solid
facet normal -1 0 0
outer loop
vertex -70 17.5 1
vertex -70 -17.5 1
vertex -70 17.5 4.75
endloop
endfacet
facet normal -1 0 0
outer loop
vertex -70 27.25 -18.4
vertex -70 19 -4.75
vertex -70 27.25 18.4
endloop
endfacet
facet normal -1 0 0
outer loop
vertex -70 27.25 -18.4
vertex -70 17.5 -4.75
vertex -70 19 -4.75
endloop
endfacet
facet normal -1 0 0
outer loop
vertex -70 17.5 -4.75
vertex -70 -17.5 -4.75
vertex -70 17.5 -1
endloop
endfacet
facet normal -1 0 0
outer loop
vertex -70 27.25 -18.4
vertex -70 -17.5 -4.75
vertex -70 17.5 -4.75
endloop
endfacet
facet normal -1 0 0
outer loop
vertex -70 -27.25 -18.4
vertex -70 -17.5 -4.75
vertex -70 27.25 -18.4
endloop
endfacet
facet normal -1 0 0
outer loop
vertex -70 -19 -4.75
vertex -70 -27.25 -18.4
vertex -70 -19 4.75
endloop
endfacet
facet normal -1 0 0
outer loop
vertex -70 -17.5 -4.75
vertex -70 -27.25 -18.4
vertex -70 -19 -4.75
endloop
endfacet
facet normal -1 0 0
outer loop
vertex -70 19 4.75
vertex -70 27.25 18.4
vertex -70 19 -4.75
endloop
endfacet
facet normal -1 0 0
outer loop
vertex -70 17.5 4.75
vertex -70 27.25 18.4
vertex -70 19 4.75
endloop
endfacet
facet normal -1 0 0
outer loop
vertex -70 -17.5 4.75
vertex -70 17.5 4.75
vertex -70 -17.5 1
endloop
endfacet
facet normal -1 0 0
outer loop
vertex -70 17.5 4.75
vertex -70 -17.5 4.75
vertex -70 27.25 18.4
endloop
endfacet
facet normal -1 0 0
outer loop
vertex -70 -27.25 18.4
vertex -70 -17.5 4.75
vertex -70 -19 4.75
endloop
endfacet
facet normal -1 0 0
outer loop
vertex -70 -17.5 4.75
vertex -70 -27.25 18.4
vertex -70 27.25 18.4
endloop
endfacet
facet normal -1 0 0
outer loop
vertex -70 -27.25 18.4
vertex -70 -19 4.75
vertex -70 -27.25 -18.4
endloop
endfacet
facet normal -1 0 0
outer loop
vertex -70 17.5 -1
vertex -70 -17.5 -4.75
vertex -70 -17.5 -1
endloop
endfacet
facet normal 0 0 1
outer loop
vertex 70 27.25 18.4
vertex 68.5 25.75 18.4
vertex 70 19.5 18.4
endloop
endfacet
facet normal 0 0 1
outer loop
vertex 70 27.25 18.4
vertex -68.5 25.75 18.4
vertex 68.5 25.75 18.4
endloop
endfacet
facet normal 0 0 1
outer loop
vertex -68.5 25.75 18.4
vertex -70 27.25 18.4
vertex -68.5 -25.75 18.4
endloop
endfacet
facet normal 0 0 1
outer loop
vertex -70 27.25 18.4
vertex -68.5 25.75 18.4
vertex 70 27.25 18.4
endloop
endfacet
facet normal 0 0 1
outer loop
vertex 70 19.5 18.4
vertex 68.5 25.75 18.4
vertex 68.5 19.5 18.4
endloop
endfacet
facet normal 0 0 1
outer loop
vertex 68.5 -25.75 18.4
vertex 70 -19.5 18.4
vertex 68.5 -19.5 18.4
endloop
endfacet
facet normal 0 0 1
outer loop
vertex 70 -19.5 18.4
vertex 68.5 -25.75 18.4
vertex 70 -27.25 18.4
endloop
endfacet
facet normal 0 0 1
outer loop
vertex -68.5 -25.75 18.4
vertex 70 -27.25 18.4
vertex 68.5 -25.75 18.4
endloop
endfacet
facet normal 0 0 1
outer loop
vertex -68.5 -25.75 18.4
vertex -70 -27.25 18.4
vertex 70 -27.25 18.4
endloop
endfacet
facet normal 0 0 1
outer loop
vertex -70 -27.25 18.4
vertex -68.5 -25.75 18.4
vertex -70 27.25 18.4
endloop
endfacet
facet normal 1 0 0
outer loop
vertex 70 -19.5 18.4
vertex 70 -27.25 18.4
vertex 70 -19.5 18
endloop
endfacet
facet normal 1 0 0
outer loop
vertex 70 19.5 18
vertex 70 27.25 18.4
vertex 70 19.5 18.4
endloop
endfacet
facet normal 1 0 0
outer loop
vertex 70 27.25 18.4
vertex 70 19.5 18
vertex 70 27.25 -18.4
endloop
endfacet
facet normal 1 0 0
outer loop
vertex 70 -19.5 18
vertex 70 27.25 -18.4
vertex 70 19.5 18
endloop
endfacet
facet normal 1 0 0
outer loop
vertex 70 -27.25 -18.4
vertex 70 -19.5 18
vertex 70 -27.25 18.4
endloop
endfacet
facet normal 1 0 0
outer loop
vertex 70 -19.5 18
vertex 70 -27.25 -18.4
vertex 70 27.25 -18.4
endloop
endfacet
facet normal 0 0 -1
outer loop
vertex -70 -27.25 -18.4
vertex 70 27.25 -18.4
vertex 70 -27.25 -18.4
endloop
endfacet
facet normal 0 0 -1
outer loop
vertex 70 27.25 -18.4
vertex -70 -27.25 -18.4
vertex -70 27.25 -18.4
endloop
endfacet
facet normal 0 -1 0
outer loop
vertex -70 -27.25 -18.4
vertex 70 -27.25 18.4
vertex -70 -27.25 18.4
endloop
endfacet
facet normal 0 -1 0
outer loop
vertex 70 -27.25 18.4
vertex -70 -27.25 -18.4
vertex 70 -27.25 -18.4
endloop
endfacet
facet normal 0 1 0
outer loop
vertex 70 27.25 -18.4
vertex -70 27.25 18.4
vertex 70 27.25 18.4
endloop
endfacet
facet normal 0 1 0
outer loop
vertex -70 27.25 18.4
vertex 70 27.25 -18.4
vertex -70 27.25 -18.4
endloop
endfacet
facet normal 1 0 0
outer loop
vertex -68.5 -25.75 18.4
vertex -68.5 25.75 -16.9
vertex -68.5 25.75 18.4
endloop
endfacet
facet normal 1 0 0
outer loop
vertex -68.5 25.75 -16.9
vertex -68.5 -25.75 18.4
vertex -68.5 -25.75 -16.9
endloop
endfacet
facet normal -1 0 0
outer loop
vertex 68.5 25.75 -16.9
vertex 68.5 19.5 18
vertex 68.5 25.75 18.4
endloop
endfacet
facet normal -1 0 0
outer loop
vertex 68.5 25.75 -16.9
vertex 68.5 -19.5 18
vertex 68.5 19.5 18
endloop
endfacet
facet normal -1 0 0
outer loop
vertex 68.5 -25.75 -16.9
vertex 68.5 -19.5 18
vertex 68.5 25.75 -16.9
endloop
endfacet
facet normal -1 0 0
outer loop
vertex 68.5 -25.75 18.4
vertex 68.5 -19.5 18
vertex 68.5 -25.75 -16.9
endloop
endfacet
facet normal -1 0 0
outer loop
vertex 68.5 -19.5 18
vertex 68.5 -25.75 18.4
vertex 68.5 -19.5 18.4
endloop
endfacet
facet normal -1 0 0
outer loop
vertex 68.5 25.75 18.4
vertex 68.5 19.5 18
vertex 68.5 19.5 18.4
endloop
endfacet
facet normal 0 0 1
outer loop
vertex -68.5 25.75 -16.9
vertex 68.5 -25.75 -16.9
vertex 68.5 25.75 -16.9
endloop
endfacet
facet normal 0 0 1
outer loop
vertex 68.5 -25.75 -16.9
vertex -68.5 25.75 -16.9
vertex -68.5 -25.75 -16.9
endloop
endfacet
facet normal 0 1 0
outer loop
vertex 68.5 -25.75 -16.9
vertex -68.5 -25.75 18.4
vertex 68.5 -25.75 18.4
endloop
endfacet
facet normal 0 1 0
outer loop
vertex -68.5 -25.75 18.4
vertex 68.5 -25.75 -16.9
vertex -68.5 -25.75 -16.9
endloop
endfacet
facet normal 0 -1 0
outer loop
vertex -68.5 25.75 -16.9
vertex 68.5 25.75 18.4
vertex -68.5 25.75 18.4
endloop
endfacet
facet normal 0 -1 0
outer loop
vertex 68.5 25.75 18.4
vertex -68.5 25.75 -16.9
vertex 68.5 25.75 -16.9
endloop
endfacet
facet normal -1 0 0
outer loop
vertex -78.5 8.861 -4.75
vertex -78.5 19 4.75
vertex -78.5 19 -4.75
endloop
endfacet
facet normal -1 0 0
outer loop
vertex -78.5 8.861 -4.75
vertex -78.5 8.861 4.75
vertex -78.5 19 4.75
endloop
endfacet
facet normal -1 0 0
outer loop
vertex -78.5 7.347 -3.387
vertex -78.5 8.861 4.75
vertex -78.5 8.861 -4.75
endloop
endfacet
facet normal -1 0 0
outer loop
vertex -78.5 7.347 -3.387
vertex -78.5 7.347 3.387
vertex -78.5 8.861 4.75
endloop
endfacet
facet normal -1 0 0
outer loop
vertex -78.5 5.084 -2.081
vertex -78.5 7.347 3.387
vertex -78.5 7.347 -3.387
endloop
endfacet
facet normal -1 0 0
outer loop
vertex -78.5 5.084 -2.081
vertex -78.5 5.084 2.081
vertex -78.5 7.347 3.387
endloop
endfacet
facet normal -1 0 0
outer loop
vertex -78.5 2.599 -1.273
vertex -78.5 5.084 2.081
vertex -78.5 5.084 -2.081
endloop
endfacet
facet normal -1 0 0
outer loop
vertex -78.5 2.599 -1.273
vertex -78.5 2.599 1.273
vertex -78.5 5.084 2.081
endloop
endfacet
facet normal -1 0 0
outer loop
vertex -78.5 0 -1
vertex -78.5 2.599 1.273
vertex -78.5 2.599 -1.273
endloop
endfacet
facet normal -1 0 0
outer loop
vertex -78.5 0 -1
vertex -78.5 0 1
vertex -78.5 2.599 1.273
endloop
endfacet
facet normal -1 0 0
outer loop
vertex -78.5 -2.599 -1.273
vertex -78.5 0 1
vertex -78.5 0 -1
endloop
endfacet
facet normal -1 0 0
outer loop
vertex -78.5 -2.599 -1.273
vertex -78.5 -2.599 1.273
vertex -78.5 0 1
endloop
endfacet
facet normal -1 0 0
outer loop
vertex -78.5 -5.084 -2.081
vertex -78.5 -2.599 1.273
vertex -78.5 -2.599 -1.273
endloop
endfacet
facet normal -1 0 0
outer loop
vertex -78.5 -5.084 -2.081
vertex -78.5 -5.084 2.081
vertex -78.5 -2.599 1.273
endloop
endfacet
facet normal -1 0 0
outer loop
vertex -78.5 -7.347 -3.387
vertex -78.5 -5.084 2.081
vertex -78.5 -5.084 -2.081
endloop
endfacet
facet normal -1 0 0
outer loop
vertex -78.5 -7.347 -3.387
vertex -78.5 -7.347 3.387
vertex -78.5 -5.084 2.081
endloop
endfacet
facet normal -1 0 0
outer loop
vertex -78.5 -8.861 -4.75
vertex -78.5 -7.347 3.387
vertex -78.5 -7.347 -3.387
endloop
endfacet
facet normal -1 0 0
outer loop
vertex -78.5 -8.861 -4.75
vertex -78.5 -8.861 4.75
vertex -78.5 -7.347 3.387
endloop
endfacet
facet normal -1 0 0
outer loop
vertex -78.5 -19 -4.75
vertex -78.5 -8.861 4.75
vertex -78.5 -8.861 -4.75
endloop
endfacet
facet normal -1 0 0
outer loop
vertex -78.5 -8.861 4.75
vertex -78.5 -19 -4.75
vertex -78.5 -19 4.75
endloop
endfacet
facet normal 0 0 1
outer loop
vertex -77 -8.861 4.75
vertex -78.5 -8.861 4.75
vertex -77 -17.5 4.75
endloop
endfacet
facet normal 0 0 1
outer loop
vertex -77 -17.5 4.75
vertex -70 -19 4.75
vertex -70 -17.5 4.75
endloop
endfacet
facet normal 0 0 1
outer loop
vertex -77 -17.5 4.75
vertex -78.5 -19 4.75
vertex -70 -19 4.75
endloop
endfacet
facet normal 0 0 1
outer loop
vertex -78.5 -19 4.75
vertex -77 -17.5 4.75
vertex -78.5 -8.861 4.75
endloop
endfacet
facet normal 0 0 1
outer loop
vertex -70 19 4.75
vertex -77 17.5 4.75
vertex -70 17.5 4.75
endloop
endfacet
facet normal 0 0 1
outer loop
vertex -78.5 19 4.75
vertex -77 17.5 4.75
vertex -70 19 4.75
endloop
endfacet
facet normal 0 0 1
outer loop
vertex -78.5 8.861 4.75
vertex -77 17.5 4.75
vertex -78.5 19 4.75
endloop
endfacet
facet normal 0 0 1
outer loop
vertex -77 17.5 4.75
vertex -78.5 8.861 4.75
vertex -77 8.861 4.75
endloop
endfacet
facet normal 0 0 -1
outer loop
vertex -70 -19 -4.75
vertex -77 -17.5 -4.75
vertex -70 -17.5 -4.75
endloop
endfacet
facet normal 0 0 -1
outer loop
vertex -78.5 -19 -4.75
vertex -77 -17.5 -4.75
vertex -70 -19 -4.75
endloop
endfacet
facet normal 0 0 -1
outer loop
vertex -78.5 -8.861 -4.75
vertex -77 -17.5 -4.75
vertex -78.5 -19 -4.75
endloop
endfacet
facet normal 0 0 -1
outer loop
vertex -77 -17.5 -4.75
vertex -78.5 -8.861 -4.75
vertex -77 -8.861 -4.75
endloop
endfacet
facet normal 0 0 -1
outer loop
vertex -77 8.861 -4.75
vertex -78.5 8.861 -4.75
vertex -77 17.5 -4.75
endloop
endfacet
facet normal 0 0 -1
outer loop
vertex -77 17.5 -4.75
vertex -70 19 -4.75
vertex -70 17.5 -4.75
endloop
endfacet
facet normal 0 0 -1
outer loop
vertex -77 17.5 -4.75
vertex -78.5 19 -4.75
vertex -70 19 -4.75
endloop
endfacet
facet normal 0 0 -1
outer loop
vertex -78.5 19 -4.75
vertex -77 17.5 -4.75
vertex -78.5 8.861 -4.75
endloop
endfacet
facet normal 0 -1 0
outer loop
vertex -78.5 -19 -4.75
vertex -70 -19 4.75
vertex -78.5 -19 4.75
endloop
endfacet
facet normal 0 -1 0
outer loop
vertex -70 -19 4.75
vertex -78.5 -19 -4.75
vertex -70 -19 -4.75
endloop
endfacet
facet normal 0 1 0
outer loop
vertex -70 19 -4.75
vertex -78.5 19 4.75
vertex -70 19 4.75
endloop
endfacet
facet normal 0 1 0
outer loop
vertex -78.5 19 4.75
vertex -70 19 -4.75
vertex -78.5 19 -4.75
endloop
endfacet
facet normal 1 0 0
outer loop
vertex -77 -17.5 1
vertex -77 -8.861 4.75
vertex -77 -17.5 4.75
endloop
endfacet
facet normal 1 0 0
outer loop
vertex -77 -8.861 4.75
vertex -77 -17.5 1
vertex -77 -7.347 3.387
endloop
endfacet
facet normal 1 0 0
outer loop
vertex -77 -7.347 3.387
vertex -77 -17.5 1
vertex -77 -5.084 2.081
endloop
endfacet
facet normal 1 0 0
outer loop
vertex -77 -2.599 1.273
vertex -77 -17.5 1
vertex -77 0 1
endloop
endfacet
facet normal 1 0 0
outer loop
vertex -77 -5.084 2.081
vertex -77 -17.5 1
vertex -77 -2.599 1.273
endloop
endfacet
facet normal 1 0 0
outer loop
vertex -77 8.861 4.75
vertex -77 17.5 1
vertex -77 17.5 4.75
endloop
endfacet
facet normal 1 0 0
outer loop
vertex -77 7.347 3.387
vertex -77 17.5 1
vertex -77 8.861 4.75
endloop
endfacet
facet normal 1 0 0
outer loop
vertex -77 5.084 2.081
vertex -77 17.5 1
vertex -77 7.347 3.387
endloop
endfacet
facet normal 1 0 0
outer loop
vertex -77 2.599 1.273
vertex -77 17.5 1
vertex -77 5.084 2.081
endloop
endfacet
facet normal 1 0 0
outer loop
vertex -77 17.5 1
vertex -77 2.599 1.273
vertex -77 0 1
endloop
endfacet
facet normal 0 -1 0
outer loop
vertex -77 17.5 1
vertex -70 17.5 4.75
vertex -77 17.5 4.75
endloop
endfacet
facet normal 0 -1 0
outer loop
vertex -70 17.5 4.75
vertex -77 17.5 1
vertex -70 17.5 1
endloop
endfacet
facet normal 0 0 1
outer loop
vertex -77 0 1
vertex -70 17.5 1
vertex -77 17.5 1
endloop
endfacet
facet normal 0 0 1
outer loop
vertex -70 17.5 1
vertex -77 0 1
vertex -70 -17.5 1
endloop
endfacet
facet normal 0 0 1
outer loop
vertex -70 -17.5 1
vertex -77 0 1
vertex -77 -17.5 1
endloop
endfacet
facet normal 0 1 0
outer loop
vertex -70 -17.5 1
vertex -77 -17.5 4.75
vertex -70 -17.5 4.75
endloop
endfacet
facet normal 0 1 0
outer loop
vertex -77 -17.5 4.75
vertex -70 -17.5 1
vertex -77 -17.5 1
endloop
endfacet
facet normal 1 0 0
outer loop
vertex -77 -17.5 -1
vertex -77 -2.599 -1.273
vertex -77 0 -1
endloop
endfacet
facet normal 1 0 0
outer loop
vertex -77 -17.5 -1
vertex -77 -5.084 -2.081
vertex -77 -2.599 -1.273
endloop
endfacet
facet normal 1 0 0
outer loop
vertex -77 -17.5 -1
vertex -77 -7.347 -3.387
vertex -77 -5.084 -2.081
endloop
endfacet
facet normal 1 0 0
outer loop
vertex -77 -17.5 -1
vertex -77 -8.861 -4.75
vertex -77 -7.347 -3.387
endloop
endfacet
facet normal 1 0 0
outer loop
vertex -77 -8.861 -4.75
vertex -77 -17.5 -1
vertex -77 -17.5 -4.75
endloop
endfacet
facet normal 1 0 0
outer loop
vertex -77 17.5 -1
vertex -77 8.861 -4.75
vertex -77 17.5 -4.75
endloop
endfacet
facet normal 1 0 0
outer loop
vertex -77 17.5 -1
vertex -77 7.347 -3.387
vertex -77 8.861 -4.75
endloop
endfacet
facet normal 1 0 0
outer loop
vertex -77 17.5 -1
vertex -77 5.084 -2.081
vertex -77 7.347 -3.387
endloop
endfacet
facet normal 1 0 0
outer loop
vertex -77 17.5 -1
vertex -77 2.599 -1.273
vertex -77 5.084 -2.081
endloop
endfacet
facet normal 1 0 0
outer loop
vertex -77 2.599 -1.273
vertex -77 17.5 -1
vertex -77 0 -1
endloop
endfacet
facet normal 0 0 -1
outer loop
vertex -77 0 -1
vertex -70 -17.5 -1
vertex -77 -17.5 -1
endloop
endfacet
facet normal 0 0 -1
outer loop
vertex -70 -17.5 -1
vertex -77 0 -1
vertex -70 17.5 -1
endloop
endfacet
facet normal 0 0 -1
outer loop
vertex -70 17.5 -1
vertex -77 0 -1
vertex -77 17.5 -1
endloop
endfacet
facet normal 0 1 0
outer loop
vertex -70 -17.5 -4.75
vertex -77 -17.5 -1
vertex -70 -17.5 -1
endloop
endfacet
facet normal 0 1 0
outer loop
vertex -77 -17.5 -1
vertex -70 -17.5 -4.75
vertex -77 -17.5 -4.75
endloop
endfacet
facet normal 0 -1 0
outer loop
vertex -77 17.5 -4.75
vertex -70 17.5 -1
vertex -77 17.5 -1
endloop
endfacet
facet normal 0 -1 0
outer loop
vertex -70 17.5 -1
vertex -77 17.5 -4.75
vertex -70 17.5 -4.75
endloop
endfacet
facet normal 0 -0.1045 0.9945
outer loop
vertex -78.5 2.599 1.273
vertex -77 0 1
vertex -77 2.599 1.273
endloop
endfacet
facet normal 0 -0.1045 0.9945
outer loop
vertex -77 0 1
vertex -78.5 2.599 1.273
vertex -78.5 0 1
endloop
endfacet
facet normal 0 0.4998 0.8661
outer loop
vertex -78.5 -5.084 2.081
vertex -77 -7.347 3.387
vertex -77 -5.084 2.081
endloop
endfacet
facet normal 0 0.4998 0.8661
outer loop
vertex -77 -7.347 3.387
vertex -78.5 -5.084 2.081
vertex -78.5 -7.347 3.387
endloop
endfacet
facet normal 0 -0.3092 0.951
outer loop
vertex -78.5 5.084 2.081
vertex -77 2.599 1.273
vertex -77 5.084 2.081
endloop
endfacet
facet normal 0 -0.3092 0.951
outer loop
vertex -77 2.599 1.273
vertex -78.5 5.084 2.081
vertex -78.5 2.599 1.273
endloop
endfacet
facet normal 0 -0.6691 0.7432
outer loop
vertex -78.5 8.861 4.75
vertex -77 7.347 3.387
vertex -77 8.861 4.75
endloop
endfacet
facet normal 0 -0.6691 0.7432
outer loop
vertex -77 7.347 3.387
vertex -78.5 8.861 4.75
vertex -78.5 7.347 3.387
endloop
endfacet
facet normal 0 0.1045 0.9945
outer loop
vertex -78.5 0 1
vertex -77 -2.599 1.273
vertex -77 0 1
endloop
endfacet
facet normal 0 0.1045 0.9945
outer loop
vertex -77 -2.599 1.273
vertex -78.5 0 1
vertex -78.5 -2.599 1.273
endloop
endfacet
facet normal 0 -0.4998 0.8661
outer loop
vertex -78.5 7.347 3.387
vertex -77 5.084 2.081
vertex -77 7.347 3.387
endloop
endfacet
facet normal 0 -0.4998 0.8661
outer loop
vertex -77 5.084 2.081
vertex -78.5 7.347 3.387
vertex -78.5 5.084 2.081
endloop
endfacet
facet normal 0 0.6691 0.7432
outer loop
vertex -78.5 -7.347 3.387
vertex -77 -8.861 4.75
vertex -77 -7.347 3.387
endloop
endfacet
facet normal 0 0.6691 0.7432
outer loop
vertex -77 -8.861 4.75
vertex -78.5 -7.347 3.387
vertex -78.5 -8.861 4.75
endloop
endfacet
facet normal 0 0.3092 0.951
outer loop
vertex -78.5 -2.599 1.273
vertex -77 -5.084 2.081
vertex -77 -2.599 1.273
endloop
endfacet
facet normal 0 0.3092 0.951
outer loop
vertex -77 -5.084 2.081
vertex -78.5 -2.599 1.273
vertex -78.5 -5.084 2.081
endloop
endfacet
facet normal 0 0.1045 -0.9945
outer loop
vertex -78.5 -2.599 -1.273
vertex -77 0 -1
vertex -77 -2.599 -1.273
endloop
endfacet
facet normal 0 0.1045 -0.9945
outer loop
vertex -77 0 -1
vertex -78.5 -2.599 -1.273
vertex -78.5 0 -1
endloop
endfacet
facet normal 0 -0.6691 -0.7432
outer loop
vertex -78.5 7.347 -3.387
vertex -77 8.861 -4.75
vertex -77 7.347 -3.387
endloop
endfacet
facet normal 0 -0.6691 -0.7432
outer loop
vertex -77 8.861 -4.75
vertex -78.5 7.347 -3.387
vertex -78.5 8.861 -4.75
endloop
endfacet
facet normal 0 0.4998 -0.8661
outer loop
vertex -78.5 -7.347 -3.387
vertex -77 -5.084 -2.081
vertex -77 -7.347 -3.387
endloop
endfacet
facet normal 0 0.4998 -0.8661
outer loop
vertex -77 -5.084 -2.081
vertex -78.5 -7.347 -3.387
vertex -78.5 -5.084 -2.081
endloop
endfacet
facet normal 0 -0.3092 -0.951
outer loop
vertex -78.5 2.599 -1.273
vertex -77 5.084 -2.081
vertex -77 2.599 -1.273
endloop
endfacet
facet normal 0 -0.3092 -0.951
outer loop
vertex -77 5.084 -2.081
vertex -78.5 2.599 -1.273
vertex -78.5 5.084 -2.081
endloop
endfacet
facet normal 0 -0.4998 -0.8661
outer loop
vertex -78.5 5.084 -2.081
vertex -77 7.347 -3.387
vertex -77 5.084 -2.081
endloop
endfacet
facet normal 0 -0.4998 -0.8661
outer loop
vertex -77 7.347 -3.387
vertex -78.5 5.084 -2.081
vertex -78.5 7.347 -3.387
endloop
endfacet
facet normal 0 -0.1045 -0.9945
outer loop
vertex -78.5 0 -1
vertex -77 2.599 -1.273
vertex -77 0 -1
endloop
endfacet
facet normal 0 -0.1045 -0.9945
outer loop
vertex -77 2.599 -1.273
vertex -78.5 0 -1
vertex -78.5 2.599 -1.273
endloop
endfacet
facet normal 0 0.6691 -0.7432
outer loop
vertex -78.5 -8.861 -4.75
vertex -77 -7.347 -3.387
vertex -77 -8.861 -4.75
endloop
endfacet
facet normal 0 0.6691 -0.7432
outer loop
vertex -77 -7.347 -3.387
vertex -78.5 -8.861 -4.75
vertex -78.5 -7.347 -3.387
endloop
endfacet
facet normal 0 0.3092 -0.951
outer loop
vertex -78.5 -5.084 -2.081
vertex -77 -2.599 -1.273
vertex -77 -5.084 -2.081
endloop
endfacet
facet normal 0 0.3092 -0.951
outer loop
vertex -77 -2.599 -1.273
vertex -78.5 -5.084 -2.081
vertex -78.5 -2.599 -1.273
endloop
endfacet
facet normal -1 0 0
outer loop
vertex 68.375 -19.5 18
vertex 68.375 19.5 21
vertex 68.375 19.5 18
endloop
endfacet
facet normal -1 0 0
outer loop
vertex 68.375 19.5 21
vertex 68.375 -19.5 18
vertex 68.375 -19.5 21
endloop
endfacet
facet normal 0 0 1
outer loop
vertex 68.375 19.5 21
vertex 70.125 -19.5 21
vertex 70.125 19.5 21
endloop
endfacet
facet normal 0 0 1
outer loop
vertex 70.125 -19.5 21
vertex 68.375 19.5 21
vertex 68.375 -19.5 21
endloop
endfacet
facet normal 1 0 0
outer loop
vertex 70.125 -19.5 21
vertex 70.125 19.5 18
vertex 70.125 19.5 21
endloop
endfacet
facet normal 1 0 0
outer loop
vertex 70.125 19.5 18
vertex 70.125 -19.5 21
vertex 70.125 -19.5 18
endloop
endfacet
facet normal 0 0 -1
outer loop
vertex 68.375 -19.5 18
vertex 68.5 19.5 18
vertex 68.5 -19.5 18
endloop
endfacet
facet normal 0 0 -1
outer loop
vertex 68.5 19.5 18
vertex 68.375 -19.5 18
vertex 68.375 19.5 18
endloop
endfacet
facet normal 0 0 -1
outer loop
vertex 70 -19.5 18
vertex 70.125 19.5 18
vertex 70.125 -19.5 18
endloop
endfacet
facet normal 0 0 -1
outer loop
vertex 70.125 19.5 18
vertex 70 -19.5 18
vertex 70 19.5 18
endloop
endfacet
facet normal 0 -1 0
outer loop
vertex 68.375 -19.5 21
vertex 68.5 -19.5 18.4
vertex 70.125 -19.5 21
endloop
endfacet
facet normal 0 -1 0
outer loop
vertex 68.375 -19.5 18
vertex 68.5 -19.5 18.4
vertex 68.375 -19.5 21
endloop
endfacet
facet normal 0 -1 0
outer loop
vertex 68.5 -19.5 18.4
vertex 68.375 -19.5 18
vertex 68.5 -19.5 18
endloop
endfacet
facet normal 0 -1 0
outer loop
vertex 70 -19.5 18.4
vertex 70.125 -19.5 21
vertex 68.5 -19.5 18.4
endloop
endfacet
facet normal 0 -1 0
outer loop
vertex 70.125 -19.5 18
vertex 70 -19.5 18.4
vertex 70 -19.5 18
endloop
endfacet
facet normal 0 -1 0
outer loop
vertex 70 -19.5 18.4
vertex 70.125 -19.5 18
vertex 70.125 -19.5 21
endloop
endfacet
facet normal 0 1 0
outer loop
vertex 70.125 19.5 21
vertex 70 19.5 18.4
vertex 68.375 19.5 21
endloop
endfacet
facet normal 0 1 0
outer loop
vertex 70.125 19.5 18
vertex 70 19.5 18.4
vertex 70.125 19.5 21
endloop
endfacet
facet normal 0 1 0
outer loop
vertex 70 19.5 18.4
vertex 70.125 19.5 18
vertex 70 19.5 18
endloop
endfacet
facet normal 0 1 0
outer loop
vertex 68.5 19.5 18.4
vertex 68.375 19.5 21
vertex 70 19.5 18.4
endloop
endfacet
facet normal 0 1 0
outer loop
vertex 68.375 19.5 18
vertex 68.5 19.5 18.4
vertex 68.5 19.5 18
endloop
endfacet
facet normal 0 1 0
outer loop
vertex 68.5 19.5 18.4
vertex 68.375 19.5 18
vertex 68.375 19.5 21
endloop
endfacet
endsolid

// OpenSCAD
// Schubbox

module Box (){
    difference(){
        cube([140,54.5,36.8],center=true);
        translate([0,0,1.5])
        cube([137,51.5,36.8],center=true);
    };
};
    
    
module Griff() {
    difference(){
        cube([9,38,9.5],center=true);
        translate([0.5,0,3])
        cube([7,35,4],center=true);
        translate([0.5,0,-3])
        cube([7,35,4],center=true);
        rotate([0,90,0])
        translate([-13.5,0,-4])
        cylinder(d=25,h=3,center=true);
        rotate([0,90,0])
        translate([13.5,0,-4])
        cylinder(d=25,h=3,center=true);
    };
};

module Nase() {
        cube([1.75,39,3],center=true);
};

    
    
    union() {
        Box();
        translate([-74,0,0])
        Griff();
        translate([69.25,0,19.5])
        Nase();
    };
    
    
